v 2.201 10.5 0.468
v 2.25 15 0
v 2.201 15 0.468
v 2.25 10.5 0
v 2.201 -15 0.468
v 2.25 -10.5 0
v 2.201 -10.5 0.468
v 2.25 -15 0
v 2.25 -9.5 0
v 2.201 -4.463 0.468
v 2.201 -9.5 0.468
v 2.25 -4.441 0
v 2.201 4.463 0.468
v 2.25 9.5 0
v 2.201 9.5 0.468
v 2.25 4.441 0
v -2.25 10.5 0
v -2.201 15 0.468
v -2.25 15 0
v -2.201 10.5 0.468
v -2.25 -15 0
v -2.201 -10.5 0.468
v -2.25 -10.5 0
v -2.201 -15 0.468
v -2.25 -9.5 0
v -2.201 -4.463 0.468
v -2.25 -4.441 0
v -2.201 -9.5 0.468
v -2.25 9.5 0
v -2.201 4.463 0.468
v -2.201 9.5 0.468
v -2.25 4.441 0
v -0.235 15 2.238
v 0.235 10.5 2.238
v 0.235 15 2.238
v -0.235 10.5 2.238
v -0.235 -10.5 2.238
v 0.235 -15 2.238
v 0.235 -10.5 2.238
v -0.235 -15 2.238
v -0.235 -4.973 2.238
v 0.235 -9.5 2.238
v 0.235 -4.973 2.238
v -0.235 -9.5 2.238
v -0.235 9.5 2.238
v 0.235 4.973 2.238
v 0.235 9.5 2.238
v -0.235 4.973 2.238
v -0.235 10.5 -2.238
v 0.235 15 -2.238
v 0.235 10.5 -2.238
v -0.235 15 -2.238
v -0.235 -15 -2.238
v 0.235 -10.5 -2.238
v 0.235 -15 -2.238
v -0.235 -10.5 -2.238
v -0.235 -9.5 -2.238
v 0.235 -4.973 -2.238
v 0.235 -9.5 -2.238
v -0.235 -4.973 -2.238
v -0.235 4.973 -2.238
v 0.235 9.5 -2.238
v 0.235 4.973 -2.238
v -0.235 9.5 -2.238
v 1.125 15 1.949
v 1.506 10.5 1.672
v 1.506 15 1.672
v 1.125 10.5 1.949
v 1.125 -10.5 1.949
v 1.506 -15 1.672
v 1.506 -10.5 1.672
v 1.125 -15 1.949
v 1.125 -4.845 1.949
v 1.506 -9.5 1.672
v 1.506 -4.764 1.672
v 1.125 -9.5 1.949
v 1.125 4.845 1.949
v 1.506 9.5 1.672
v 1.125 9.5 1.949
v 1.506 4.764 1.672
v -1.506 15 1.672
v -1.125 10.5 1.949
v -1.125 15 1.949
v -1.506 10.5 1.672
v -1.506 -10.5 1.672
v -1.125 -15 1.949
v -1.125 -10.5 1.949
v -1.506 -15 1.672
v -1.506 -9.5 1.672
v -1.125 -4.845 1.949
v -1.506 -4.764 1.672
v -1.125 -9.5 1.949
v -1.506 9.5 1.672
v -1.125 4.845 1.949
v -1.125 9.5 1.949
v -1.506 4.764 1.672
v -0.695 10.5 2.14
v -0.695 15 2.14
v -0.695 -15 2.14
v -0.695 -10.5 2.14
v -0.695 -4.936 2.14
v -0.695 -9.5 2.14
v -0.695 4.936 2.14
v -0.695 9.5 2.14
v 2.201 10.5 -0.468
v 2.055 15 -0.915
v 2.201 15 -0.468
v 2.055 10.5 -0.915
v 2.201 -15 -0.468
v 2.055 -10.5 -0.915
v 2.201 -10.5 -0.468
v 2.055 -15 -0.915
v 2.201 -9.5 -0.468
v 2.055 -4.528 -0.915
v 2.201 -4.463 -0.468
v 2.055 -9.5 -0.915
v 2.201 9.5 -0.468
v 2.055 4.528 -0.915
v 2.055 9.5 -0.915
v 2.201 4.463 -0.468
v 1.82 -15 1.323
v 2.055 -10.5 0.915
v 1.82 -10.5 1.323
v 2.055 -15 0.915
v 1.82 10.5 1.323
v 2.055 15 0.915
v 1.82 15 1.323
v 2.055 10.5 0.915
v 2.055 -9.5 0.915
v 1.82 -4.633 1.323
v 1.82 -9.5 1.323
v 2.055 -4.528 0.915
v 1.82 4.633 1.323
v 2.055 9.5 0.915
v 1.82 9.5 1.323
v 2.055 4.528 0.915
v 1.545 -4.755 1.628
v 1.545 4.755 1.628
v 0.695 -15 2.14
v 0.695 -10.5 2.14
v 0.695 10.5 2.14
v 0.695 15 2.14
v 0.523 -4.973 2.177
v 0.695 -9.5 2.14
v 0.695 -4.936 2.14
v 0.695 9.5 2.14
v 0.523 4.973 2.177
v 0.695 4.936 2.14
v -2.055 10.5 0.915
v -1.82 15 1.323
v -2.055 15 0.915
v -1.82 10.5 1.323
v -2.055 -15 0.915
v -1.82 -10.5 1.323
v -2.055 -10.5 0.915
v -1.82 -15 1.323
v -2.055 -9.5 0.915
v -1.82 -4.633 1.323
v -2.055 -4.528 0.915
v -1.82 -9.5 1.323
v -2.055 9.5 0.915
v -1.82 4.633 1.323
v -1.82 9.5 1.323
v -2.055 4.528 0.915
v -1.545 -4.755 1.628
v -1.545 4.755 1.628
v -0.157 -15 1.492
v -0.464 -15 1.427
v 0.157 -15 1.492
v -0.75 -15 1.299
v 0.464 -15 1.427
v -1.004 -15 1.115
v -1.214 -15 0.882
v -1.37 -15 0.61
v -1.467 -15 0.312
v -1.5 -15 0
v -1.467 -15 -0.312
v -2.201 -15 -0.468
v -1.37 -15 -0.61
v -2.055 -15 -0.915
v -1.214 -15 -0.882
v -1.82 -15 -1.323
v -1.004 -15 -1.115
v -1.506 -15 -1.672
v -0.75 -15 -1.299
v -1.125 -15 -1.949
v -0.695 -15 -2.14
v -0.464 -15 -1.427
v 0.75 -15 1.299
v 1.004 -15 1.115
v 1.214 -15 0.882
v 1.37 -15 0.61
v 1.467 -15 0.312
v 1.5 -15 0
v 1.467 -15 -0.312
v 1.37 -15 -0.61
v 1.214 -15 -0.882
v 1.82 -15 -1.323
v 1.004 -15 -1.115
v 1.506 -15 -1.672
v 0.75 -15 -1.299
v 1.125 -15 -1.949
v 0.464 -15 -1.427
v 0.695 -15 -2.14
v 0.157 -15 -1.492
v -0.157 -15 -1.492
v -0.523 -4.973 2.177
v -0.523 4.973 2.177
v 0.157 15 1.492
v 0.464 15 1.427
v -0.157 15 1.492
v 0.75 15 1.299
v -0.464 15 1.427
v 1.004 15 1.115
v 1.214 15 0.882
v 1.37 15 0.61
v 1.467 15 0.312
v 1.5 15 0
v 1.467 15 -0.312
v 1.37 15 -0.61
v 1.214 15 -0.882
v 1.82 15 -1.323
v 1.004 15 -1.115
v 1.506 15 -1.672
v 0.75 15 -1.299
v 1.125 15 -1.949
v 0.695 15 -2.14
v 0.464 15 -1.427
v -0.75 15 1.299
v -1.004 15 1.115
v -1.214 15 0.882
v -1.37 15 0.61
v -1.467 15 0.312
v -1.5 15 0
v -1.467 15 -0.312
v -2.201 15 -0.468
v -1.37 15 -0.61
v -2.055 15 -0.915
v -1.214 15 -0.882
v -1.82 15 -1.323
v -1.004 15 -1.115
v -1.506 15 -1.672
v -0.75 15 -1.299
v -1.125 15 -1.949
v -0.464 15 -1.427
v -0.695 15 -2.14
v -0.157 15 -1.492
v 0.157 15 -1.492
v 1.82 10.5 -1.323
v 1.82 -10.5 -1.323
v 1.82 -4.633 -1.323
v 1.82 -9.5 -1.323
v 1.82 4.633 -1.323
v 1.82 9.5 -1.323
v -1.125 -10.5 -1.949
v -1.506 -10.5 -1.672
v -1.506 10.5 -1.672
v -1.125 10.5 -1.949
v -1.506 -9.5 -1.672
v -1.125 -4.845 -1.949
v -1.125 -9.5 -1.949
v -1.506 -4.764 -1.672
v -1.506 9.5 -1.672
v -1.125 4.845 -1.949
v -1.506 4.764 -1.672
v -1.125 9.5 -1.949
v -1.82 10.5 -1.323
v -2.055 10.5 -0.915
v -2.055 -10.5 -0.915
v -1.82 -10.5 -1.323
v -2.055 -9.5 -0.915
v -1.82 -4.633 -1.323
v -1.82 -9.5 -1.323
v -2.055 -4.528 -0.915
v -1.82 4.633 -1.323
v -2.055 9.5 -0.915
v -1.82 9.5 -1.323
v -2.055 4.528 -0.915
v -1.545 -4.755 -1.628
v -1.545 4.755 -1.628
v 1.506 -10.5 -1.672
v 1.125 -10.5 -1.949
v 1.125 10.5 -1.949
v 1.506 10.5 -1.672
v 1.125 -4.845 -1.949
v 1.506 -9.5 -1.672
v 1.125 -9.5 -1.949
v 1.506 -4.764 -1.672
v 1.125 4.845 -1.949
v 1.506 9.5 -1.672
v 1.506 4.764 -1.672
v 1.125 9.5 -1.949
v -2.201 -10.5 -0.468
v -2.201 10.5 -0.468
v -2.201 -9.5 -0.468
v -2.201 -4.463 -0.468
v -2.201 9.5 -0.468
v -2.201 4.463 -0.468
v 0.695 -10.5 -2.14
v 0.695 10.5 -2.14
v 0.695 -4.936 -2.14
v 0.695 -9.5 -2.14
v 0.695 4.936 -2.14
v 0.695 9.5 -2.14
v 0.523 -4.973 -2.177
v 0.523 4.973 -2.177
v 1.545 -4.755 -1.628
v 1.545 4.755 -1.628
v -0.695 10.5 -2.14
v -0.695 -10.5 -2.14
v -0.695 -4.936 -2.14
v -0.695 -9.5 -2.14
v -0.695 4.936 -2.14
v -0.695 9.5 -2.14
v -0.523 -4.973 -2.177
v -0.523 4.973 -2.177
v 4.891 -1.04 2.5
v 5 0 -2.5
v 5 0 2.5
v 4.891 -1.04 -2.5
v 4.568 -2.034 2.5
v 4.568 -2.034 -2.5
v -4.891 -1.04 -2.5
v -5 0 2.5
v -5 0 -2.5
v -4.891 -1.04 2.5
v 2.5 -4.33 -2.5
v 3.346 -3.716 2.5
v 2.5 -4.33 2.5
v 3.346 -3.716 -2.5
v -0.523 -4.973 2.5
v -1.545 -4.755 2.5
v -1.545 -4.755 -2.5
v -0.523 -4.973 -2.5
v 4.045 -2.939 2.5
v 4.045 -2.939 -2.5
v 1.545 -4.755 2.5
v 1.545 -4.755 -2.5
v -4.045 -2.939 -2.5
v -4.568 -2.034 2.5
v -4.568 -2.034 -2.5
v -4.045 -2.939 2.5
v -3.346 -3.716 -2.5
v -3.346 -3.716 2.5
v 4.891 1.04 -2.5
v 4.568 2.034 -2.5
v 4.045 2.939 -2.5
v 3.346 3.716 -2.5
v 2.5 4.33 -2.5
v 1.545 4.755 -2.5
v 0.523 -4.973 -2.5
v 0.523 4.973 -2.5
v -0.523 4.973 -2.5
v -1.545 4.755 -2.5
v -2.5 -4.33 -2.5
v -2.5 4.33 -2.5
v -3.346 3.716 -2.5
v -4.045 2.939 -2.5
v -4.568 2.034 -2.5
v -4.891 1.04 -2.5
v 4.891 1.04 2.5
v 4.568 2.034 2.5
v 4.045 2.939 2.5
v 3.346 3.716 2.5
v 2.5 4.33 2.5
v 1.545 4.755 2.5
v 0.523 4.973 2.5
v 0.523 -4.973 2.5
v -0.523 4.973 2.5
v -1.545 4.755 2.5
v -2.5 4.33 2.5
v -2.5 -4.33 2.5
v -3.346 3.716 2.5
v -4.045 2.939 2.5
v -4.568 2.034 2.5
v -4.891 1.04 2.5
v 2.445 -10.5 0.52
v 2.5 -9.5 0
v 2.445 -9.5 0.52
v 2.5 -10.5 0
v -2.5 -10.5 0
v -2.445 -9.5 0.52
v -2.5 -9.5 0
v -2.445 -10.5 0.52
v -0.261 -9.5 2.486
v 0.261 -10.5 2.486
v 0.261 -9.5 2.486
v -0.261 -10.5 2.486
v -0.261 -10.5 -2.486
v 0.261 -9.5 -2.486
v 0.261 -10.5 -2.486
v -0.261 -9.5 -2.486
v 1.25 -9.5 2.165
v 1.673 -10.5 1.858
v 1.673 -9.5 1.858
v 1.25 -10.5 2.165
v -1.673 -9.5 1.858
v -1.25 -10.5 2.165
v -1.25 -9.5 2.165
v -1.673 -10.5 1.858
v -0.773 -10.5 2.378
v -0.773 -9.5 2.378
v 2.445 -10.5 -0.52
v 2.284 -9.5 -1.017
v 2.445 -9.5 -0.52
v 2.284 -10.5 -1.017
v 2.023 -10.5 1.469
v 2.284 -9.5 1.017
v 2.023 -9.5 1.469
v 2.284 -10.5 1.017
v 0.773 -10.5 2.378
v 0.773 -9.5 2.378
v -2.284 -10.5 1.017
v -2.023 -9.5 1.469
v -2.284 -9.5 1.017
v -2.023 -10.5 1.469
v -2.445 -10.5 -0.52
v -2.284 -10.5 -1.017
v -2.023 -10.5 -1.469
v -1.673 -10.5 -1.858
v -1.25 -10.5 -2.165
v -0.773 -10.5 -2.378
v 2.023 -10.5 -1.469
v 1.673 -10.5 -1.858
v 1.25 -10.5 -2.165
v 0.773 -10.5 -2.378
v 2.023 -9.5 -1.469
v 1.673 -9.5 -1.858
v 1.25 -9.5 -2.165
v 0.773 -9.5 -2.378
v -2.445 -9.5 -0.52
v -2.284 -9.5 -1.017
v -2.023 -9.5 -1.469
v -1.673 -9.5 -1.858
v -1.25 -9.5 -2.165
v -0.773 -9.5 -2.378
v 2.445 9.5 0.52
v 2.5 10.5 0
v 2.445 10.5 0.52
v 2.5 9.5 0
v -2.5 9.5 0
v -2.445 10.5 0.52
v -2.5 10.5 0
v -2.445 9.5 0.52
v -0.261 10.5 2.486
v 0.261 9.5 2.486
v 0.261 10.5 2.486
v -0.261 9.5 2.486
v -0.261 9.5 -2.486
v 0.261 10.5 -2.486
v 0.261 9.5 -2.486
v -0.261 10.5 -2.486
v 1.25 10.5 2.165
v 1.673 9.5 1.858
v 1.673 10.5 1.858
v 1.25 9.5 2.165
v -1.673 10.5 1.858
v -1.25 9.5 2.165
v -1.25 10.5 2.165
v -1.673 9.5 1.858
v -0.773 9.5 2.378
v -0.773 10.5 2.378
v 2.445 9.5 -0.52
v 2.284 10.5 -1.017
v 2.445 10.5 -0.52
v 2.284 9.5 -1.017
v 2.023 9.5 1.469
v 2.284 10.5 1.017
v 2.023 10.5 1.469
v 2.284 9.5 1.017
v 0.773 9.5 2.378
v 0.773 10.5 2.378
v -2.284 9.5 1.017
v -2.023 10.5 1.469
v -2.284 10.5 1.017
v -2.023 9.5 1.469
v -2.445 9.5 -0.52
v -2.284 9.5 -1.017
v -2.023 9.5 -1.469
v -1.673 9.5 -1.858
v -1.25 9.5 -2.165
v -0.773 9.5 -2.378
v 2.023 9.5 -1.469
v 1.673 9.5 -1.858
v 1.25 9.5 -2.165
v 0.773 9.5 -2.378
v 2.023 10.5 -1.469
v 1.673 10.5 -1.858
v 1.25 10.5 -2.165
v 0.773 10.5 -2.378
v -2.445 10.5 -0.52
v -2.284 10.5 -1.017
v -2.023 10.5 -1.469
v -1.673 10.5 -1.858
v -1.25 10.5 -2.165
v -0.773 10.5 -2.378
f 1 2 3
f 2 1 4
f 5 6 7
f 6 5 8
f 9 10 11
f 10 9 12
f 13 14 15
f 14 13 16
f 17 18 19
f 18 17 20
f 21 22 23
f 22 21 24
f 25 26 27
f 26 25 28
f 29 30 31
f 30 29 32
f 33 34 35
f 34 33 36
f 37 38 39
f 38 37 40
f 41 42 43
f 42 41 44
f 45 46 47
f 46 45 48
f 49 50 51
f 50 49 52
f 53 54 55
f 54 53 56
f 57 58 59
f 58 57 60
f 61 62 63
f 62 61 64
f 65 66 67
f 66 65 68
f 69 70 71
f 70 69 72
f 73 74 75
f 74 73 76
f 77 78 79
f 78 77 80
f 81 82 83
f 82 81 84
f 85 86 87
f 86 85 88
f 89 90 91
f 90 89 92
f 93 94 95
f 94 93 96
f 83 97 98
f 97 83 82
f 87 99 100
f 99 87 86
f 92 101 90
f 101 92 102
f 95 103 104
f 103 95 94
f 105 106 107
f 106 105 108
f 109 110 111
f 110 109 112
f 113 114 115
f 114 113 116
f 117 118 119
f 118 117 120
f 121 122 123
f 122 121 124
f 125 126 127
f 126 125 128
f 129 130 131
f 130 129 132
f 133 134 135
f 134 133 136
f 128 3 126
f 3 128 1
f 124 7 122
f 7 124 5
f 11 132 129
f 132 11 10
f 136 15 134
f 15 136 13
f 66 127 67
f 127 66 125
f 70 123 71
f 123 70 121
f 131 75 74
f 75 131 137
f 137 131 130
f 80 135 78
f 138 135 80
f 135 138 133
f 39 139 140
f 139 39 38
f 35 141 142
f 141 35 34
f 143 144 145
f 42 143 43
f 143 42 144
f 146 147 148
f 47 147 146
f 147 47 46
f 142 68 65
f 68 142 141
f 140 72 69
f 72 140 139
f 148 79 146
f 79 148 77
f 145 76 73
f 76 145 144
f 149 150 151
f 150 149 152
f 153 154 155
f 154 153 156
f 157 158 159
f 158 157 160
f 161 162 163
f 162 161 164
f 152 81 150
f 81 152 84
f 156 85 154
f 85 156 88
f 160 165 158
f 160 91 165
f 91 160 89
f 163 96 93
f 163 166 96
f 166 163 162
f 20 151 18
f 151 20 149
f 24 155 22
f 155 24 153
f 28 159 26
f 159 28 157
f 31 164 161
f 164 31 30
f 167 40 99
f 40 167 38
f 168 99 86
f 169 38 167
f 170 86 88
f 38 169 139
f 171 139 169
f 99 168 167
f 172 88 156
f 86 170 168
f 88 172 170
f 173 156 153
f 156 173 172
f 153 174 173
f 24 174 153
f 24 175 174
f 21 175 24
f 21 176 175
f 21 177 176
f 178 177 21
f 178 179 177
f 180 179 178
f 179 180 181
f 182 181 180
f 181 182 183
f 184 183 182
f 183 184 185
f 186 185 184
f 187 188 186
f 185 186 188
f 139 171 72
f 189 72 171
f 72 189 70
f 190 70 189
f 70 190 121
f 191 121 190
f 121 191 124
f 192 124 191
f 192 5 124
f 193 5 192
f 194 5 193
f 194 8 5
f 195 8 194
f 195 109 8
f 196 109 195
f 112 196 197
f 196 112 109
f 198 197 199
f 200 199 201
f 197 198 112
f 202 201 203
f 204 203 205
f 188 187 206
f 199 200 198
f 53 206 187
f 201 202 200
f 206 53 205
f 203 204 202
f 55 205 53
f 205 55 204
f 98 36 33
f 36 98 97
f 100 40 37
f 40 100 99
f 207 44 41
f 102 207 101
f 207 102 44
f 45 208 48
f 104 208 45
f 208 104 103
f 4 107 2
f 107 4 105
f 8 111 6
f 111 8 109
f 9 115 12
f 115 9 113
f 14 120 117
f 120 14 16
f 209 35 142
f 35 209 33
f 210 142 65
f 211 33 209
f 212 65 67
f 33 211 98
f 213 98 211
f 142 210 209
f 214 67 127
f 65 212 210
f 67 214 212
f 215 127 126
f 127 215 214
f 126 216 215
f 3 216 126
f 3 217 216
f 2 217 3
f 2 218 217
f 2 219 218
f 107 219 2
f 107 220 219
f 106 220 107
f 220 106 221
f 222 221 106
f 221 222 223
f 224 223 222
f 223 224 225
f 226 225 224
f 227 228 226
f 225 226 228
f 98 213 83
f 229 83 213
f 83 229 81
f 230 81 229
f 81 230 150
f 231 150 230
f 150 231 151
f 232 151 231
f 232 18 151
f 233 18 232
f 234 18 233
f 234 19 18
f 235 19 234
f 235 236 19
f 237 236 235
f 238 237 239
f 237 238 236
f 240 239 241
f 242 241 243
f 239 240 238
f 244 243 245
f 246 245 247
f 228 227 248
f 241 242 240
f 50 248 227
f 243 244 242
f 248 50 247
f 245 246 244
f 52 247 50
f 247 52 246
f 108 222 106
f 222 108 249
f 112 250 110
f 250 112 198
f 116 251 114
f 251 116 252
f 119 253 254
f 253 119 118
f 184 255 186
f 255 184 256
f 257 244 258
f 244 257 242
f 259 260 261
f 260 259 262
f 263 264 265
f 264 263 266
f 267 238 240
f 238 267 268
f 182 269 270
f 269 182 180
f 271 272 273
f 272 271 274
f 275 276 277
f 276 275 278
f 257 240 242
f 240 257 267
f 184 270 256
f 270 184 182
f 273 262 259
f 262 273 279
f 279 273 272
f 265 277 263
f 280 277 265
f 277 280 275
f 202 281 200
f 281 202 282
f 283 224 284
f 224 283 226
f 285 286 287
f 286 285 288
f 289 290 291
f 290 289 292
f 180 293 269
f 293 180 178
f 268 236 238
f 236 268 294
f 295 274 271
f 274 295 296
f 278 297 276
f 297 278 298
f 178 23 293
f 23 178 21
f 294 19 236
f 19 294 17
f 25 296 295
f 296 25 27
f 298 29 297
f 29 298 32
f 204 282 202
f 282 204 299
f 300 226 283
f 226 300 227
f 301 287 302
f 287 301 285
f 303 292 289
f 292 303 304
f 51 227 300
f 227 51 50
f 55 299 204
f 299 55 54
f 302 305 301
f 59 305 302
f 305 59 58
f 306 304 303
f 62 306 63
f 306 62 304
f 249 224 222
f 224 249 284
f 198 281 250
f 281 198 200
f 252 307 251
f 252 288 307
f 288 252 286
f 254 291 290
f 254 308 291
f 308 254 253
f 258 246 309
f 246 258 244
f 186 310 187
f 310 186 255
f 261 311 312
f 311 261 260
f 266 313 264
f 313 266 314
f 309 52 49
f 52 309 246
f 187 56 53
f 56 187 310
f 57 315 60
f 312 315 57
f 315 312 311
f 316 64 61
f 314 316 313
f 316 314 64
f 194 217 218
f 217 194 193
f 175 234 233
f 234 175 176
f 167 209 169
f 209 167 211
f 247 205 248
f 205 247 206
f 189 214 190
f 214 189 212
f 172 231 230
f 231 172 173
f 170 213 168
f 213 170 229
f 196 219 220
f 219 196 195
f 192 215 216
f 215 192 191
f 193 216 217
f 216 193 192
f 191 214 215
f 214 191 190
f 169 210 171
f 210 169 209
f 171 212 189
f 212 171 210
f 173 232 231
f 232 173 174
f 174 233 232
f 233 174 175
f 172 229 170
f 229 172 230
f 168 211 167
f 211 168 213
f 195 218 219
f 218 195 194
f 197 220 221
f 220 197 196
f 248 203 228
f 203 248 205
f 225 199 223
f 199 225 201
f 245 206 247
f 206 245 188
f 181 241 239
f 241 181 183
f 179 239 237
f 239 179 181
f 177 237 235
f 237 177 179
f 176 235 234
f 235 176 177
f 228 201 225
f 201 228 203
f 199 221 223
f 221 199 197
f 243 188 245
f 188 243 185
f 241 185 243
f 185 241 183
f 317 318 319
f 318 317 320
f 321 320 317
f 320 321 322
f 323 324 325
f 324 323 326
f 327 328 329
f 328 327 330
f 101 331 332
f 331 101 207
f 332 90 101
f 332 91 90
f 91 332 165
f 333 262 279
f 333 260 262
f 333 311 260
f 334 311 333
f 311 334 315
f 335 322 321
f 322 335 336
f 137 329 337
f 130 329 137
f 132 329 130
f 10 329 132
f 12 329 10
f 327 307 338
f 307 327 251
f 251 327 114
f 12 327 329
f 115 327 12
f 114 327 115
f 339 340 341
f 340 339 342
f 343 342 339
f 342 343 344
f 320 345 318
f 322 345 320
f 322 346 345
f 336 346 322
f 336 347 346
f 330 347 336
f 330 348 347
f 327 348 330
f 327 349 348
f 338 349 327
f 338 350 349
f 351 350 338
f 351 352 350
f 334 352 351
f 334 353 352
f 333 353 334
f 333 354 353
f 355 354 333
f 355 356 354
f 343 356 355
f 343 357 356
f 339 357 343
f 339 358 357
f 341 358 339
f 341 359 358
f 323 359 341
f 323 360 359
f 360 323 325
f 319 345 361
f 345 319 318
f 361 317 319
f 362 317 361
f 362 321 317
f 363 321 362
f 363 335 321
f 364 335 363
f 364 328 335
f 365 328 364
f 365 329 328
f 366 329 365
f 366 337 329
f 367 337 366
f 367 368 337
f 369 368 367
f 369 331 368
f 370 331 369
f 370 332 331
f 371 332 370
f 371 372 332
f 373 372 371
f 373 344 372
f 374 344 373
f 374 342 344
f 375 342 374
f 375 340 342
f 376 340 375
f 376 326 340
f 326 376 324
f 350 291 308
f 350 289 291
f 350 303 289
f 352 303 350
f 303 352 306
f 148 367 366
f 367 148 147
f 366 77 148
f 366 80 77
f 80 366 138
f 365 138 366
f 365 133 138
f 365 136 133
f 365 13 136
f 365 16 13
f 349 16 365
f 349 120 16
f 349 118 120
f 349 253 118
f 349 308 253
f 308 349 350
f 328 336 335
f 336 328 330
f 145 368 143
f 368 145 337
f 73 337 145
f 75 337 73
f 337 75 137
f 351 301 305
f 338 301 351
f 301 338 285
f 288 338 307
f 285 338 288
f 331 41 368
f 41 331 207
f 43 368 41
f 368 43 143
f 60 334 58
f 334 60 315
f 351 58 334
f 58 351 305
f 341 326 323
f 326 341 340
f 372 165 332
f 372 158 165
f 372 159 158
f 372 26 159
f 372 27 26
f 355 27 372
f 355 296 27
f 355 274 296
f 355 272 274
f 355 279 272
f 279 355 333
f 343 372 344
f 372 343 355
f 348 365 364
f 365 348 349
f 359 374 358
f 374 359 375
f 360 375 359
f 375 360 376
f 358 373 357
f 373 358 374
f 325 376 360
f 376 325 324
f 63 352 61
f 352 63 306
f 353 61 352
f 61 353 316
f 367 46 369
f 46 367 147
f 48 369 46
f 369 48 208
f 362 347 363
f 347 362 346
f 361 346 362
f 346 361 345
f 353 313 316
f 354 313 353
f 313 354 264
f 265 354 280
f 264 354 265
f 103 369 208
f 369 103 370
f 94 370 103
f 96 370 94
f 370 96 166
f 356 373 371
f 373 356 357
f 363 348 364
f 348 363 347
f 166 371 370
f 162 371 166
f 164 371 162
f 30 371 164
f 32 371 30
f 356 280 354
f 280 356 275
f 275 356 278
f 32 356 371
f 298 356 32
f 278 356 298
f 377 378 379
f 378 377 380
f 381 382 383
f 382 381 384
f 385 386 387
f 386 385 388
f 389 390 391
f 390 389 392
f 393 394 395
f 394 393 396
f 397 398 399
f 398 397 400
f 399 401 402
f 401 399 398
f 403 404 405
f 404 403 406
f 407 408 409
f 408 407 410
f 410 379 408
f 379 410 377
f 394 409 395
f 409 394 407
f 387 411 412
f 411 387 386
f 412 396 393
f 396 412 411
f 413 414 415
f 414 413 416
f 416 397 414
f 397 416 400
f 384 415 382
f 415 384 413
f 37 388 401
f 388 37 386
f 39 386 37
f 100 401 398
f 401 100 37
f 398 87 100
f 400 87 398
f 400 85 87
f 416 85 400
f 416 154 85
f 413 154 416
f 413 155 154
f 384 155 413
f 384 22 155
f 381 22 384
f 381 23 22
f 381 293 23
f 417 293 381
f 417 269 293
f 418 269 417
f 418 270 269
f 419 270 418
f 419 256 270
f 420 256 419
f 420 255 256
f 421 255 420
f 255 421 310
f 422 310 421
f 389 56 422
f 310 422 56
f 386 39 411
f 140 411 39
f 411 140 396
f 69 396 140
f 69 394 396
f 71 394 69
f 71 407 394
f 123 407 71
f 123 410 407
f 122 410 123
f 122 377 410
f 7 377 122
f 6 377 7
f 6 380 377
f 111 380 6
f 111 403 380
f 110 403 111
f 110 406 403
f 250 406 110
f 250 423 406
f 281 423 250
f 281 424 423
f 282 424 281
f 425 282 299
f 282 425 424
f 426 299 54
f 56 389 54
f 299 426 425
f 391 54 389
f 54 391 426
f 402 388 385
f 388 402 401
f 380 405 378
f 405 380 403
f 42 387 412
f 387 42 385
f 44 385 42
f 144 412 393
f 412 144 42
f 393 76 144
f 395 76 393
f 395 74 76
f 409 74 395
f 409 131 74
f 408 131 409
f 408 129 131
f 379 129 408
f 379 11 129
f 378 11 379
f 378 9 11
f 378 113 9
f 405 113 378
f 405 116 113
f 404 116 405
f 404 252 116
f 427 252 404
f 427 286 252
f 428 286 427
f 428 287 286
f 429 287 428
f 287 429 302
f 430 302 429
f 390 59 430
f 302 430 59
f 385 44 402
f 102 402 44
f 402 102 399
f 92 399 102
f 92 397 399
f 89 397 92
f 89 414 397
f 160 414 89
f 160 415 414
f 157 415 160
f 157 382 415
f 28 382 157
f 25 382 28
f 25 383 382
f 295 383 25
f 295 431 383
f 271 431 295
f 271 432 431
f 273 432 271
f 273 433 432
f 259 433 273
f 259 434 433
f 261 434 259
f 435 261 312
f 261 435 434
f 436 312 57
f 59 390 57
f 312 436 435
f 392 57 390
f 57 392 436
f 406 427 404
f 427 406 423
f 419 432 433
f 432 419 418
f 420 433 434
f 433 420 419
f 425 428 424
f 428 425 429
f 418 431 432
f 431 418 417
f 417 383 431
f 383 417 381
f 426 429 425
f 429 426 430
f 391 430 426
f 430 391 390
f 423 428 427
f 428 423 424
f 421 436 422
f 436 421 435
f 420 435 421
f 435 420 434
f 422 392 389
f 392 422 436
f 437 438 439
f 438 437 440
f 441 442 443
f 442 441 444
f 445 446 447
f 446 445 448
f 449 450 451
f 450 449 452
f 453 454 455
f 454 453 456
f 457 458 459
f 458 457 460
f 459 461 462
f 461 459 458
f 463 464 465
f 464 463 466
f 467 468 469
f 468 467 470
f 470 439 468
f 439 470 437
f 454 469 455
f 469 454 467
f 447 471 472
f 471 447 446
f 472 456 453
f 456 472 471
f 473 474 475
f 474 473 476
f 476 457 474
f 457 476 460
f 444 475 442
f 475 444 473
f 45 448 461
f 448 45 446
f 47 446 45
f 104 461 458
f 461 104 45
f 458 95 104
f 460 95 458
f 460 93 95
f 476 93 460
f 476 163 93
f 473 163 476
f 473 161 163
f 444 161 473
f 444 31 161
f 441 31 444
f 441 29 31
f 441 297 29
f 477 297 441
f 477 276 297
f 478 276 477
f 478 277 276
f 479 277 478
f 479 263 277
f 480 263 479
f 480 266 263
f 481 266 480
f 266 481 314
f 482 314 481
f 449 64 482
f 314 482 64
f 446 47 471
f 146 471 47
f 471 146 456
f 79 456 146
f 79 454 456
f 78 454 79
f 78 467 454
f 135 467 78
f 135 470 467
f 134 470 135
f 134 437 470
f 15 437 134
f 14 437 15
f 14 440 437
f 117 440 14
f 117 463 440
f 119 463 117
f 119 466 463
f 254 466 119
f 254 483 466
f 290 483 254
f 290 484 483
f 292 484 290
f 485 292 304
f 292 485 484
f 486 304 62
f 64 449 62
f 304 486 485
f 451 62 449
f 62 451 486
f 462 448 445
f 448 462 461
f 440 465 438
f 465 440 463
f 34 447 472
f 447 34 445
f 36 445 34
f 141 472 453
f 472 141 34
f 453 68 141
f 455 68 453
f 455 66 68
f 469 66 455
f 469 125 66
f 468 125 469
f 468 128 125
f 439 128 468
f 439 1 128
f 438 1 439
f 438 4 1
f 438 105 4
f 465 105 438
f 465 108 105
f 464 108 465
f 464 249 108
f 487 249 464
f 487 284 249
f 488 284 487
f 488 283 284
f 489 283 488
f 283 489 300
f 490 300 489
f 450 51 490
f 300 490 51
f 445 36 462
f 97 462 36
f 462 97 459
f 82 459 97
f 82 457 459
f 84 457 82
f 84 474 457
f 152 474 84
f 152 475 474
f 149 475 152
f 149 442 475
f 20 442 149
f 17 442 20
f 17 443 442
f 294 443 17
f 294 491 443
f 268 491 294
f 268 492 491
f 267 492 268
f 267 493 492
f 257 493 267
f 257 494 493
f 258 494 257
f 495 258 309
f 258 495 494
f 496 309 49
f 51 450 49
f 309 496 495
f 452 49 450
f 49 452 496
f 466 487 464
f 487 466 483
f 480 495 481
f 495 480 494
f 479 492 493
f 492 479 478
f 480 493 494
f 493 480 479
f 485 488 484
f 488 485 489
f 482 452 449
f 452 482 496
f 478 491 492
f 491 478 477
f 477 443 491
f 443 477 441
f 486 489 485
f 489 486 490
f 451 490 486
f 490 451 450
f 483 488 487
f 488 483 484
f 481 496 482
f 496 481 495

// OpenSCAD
// Schlauchverbinder

Laenge = 30;

Leitung = true;
Mitte = true;
Haken1 = true;
Haken2 = false;


if (Leitung) rotate([90,0,0]) Leitung();
if (Mitte) rotate([90,0,0]) Mitte();
if (Haken1) rotate([90,0,0]) Haken1();
if (Haken2) rotate([90,0,0]) Haken2();

module Leitung() {
    $fn=30;
    difference() {
        cylinder(d=4.5, h=Laenge, center=true);
        cylinder(d=3, h=Laenge+2, center=true);
    }
        
} 


module Mitte() {

    difference() {
        $fn=30;
        // Mitte
        rotate([90,0,0])
        cylinder(d=10,h=5, center= true);
        cylinder(d=3, h=Laenge+2, center=true);
    }
}

module Haken1() {
    $fn=30;
    
    difference() {
        union() {
            translate([0,0,10])
            cylinder(d=5,h=1, center= true);
            translate([0,0,-10])
            cylinder(d=5,h=1, center= true);
        }
        cylinder(d=3, h=Laenge+2, center=true);
    }
}

module Haken2() {
    $fn=30;
    
    difference() {
        union() {
            translate([0,0,7])
            cylinder(d=5,h=1, center= true);
            translate([0,0,-7])
            cylinder(d=5,h=1, center= true);
        }
        cylinder(d=3, h=Laenge+2, center=true);
    }
}
